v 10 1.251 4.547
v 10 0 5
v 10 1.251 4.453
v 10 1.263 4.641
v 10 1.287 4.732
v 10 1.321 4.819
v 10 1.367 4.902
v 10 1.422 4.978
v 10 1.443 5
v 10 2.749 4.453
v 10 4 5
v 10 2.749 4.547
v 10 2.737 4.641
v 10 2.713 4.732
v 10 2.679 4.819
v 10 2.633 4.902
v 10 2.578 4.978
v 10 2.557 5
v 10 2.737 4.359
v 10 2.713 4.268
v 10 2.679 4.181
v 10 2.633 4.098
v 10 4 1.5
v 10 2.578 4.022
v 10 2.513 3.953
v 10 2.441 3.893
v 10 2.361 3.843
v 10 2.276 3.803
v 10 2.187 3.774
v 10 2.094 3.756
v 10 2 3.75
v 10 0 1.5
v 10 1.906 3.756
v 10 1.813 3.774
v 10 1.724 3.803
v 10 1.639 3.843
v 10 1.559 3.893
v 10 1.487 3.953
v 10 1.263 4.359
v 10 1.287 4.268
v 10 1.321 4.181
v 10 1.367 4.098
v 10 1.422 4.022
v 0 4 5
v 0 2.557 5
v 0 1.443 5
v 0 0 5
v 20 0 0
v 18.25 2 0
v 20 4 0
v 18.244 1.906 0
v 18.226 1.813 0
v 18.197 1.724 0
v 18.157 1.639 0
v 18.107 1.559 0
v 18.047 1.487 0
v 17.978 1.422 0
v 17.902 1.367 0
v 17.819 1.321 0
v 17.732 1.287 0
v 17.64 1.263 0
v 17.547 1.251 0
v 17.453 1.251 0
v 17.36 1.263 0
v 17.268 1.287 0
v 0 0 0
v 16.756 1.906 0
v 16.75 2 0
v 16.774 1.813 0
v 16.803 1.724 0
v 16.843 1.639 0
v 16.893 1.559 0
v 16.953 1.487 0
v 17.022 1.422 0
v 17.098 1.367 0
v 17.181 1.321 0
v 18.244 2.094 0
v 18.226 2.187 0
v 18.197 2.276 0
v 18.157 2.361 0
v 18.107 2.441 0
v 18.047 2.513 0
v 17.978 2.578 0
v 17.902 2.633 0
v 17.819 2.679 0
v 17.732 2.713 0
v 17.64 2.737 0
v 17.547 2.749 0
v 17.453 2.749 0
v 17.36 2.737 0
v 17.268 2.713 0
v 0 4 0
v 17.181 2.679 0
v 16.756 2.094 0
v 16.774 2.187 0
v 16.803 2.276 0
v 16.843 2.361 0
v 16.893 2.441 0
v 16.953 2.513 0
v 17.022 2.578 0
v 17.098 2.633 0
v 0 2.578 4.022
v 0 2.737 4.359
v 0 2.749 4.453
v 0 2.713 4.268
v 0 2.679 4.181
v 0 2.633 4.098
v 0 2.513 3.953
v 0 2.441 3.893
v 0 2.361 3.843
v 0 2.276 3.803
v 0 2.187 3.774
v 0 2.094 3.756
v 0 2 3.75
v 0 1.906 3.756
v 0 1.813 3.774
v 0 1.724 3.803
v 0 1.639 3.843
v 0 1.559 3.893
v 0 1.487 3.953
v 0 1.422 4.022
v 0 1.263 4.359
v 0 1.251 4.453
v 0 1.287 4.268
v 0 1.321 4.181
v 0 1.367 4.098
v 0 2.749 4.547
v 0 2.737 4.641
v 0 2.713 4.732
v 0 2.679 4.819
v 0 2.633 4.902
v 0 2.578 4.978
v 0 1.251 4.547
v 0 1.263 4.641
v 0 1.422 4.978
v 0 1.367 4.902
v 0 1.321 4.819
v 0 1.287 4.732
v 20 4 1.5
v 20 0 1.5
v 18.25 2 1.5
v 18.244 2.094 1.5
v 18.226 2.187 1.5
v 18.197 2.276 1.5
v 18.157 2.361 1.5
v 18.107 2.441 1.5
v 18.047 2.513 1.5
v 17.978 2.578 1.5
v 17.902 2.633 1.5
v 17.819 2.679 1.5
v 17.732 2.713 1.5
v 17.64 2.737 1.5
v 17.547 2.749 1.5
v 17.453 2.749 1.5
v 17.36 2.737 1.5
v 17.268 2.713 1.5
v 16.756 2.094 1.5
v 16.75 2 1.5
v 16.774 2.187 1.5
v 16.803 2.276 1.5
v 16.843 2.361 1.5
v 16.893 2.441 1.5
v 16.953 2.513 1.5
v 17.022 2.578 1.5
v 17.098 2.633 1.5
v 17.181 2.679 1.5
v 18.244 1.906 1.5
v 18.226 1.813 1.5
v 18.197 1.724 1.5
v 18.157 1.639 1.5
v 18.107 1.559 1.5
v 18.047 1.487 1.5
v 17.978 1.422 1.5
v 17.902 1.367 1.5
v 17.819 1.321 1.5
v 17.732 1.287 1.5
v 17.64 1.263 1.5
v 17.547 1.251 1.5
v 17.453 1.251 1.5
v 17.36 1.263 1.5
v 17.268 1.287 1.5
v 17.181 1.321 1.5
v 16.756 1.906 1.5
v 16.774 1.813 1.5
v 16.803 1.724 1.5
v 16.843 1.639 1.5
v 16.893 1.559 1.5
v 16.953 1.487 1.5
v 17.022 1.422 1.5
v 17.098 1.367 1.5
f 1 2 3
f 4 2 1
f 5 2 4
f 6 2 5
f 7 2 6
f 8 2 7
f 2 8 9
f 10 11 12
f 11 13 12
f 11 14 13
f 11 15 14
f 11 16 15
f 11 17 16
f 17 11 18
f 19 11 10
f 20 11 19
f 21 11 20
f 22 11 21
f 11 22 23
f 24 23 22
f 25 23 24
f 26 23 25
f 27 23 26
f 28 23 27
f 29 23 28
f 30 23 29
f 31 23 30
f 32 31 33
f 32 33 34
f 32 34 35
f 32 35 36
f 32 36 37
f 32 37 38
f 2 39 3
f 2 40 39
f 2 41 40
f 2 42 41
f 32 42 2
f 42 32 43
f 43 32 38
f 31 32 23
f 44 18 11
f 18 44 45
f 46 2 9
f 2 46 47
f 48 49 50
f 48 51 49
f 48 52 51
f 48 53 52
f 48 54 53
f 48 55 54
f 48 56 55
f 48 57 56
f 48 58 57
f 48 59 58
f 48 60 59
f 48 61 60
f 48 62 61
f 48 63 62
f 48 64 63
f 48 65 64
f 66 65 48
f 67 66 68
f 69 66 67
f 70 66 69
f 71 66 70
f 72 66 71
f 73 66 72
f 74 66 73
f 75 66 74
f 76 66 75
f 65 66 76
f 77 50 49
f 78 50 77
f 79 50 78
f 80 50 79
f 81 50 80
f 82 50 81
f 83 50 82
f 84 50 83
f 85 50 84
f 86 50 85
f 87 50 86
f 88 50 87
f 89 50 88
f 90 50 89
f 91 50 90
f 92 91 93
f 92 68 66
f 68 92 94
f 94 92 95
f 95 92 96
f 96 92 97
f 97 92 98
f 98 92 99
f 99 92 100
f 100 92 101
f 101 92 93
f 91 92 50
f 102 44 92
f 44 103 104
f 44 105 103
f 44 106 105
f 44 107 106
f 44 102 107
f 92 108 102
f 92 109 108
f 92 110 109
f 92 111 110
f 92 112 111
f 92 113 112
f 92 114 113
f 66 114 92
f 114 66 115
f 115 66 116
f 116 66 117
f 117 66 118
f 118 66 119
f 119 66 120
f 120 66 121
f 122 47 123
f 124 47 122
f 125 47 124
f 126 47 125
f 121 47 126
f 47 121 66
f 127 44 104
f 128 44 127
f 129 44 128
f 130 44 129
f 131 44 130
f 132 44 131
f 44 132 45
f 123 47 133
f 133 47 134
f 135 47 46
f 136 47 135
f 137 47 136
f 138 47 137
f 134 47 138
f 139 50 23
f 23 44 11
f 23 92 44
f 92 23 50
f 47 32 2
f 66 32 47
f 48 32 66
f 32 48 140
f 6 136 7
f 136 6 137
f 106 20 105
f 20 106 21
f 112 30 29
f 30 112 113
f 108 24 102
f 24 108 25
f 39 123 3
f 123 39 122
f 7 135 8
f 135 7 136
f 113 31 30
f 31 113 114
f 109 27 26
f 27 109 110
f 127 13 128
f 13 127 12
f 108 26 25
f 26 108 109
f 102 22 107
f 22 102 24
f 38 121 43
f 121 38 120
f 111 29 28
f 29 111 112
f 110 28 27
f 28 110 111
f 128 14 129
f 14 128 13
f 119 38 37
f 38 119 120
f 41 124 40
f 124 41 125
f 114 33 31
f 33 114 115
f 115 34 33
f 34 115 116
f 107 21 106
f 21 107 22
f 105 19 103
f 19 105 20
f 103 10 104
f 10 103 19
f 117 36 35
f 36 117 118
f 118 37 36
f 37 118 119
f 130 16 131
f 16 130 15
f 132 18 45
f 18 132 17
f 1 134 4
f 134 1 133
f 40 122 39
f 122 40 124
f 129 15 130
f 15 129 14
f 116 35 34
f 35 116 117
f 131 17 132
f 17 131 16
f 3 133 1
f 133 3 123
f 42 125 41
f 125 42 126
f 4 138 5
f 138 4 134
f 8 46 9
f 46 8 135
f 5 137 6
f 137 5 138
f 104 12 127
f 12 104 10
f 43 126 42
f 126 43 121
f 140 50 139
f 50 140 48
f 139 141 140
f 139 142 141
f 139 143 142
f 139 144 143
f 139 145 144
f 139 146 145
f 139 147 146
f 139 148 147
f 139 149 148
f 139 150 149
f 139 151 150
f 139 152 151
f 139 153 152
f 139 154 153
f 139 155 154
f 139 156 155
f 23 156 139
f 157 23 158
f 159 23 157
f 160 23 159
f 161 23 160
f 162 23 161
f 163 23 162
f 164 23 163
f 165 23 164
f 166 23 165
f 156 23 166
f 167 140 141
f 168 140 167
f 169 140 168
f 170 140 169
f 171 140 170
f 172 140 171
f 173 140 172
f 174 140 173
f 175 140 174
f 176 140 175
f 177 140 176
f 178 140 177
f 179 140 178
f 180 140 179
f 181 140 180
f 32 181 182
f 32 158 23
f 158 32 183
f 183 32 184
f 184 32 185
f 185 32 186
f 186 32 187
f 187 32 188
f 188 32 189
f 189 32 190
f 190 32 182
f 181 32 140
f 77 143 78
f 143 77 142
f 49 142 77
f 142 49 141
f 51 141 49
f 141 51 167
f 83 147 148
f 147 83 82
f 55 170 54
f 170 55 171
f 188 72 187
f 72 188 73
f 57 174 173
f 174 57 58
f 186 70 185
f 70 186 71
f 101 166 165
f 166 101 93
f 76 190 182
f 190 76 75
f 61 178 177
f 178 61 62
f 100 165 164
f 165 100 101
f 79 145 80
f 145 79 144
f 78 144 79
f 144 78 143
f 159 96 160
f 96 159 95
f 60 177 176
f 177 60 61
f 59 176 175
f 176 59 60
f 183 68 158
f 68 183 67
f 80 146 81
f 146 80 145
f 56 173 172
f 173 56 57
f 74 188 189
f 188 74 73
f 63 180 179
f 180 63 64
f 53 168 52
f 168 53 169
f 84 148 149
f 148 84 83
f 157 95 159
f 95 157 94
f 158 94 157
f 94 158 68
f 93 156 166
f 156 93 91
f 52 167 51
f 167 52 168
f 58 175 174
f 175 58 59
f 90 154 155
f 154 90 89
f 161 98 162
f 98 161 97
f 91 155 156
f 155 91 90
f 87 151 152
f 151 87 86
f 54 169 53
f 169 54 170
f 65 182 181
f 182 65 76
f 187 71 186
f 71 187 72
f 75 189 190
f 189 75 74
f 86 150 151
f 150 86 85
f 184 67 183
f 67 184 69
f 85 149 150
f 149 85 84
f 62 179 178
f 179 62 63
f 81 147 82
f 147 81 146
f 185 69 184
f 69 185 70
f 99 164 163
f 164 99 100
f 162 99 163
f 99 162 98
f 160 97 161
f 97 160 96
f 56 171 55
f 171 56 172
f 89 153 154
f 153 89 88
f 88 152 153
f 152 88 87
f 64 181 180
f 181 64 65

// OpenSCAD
$fn=50;

module item(rod_diam) {
  H1=1.5;
  H2=5;
  LEN=20;
  WID=4;
  // rod clip
  difference() {
    cube([LEN-10,WID,H2]);
    translate([0,2,H2-(rod_diam/3)]) rotate([0,90,0]) cylinder(LEN-10,d=rod_diam);
  }
  // registration hole
  difference() {
    cube([LEN,WID,H1]);
    translate([LEN-2.5,2,0])cylinder(H1,d=rod_diam);
  }
}

item(rod_diam=1.5);
